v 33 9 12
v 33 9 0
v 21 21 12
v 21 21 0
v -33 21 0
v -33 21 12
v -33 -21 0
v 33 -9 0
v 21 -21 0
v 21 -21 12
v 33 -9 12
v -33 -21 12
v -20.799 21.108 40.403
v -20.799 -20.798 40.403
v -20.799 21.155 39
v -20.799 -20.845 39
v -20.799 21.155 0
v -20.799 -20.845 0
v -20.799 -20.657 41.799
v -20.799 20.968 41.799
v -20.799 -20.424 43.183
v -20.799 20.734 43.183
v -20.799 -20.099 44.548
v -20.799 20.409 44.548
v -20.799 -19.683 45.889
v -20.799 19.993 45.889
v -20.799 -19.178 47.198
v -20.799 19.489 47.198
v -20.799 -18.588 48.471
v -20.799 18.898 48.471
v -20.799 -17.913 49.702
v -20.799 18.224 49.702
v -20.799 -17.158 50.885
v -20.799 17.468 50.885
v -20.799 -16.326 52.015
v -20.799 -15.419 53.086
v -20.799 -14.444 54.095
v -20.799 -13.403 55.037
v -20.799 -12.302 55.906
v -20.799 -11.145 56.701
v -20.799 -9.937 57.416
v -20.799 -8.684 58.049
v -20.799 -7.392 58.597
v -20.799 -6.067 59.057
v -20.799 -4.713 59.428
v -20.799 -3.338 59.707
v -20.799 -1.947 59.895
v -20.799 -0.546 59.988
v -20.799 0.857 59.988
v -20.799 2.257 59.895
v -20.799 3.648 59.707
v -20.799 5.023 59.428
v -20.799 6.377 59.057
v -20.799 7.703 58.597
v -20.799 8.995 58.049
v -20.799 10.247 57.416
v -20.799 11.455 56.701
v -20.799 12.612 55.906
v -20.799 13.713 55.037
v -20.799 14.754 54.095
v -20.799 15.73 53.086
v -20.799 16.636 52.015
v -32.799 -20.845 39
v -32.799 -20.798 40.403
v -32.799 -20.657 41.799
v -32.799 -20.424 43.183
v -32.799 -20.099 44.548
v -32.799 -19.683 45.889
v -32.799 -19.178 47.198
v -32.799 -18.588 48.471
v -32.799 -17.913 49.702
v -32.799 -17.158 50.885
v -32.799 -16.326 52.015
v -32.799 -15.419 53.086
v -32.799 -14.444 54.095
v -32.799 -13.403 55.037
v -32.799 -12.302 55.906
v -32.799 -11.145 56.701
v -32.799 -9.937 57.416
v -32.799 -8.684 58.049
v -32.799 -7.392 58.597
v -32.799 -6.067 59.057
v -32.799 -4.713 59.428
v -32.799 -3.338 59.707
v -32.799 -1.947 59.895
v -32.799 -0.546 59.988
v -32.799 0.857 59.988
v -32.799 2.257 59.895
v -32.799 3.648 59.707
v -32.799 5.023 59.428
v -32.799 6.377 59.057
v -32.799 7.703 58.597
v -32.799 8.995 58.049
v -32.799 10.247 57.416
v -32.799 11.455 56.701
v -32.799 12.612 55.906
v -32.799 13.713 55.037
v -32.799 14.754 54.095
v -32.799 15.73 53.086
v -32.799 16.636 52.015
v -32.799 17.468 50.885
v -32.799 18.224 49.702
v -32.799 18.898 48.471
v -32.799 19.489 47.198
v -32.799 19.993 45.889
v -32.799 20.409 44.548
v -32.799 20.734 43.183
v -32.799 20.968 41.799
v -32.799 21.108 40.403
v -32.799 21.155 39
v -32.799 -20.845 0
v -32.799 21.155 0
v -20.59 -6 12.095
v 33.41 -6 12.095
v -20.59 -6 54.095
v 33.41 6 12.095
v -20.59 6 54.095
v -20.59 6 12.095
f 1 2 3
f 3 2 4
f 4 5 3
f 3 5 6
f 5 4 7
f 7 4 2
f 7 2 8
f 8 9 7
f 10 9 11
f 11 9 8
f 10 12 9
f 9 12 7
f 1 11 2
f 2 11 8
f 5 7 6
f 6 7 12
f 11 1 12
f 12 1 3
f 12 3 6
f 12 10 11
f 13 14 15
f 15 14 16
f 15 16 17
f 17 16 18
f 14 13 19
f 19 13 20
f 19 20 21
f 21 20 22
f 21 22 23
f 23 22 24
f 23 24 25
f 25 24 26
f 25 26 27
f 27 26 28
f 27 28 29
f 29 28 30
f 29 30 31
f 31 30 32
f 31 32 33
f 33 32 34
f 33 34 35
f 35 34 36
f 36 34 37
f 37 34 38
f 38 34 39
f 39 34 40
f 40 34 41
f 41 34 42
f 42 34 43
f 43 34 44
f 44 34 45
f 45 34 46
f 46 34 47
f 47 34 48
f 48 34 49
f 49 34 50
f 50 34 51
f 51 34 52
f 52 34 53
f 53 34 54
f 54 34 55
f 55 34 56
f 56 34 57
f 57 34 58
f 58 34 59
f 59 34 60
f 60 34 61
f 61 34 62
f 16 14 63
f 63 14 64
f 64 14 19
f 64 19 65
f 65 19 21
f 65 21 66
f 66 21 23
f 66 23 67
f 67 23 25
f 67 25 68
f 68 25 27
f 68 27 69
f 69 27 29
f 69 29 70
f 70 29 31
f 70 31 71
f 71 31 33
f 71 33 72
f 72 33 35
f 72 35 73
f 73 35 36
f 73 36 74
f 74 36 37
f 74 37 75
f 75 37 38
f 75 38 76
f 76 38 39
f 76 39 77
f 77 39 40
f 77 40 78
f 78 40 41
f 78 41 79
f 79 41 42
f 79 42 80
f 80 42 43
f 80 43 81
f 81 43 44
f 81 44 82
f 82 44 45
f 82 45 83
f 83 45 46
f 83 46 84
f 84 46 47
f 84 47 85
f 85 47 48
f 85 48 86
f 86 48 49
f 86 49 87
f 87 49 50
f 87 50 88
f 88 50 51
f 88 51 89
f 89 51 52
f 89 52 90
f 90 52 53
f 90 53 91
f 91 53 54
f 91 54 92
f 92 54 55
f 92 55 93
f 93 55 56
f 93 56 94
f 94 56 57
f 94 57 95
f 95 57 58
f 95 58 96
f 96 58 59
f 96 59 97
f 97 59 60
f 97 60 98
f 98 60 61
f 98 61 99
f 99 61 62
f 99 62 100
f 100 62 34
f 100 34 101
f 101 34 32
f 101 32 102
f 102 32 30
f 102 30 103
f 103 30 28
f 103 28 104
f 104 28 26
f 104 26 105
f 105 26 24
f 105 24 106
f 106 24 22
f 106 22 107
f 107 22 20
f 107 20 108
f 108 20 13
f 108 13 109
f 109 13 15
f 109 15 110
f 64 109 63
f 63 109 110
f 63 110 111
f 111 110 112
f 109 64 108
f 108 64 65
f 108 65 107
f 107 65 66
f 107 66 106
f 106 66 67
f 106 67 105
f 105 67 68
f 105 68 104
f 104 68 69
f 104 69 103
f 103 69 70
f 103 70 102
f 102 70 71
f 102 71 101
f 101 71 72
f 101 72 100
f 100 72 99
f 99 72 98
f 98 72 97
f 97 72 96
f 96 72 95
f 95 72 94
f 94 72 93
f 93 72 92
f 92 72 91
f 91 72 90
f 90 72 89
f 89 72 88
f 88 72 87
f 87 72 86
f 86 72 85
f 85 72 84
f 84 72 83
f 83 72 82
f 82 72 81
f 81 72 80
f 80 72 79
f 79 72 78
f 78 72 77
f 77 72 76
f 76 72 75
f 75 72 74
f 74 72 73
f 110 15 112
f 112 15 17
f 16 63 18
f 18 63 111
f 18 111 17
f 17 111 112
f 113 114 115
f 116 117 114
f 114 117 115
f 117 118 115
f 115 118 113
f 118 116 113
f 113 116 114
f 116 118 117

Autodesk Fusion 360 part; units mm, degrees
sketch "Sketch1" plane through (0, 0, 0) normal (0, 0, 1) x (1, 0, 0)
  line L0 (33, -21) -> (-33, -21)
  line L1 (-33, -21) -> (-33, 21)
  line L2 (-33, 21) -> (33, 21)
  line L3 (33, 21) -> (33, -21)
  line L4 (33, -21) -> (-33, 21) construction
  line L5 (-33, -21) -> (33, 21) construction
  dimension "d1" = 66
  dimension "d2" = 42
extrude "Extrude1" add sketch "Sketch1" along normal blind 12 makes body 1
chamfer "Chamfer1" distance 12 angle 45 2 edges at (33, -21, 6) (33, 21, 6) on bodies 1
sketch "Sketch2" plane through (0, 0, 0) normal (0, 0, 1) x (1, 0, 0)
  line L0 (-32.7988, 21.1552) -> (-20.7988, 21.1552)
  line L1 (-20.7988, 21.1552) -> (-20.7988, -20.8448)
  line L2 (-20.7988, -20.8448) -> (-32.7988, -20.8448)
  line L3 (-32.7988, -20.8448) -> (-32.7988, 21.1552)
  dimension "d6" = 12
  dimension "d7" = 42
extrude "Extrude2" add sketch "Sketch2" along normal blind 60 separate body makes body 2
fillet "Fillet1" radius 21 2 edges at (-26.7988, -20.8448, 60) (-26.7988, 21.1552, 60) on bodies 2
sketch "Sketch3" plane through (0, 0, 0) normal (0, 1, 0) x (1, 0, 0)
  line L0 (-20.5897, -54.0952) -> (-20.5897, -12.0952)
  line L1 (-20.5897, -12.0952) -> (33.4103, -12.0952)
  line L2 (33.4103, -12.0952) -> (-20.5897, -54.0952)
  dimension "d11" = 42
  dimension "d12" = 54
extrude "Extrude3" add sketch "Sketch3" along normal mid plane 12 separate body makes body 3
